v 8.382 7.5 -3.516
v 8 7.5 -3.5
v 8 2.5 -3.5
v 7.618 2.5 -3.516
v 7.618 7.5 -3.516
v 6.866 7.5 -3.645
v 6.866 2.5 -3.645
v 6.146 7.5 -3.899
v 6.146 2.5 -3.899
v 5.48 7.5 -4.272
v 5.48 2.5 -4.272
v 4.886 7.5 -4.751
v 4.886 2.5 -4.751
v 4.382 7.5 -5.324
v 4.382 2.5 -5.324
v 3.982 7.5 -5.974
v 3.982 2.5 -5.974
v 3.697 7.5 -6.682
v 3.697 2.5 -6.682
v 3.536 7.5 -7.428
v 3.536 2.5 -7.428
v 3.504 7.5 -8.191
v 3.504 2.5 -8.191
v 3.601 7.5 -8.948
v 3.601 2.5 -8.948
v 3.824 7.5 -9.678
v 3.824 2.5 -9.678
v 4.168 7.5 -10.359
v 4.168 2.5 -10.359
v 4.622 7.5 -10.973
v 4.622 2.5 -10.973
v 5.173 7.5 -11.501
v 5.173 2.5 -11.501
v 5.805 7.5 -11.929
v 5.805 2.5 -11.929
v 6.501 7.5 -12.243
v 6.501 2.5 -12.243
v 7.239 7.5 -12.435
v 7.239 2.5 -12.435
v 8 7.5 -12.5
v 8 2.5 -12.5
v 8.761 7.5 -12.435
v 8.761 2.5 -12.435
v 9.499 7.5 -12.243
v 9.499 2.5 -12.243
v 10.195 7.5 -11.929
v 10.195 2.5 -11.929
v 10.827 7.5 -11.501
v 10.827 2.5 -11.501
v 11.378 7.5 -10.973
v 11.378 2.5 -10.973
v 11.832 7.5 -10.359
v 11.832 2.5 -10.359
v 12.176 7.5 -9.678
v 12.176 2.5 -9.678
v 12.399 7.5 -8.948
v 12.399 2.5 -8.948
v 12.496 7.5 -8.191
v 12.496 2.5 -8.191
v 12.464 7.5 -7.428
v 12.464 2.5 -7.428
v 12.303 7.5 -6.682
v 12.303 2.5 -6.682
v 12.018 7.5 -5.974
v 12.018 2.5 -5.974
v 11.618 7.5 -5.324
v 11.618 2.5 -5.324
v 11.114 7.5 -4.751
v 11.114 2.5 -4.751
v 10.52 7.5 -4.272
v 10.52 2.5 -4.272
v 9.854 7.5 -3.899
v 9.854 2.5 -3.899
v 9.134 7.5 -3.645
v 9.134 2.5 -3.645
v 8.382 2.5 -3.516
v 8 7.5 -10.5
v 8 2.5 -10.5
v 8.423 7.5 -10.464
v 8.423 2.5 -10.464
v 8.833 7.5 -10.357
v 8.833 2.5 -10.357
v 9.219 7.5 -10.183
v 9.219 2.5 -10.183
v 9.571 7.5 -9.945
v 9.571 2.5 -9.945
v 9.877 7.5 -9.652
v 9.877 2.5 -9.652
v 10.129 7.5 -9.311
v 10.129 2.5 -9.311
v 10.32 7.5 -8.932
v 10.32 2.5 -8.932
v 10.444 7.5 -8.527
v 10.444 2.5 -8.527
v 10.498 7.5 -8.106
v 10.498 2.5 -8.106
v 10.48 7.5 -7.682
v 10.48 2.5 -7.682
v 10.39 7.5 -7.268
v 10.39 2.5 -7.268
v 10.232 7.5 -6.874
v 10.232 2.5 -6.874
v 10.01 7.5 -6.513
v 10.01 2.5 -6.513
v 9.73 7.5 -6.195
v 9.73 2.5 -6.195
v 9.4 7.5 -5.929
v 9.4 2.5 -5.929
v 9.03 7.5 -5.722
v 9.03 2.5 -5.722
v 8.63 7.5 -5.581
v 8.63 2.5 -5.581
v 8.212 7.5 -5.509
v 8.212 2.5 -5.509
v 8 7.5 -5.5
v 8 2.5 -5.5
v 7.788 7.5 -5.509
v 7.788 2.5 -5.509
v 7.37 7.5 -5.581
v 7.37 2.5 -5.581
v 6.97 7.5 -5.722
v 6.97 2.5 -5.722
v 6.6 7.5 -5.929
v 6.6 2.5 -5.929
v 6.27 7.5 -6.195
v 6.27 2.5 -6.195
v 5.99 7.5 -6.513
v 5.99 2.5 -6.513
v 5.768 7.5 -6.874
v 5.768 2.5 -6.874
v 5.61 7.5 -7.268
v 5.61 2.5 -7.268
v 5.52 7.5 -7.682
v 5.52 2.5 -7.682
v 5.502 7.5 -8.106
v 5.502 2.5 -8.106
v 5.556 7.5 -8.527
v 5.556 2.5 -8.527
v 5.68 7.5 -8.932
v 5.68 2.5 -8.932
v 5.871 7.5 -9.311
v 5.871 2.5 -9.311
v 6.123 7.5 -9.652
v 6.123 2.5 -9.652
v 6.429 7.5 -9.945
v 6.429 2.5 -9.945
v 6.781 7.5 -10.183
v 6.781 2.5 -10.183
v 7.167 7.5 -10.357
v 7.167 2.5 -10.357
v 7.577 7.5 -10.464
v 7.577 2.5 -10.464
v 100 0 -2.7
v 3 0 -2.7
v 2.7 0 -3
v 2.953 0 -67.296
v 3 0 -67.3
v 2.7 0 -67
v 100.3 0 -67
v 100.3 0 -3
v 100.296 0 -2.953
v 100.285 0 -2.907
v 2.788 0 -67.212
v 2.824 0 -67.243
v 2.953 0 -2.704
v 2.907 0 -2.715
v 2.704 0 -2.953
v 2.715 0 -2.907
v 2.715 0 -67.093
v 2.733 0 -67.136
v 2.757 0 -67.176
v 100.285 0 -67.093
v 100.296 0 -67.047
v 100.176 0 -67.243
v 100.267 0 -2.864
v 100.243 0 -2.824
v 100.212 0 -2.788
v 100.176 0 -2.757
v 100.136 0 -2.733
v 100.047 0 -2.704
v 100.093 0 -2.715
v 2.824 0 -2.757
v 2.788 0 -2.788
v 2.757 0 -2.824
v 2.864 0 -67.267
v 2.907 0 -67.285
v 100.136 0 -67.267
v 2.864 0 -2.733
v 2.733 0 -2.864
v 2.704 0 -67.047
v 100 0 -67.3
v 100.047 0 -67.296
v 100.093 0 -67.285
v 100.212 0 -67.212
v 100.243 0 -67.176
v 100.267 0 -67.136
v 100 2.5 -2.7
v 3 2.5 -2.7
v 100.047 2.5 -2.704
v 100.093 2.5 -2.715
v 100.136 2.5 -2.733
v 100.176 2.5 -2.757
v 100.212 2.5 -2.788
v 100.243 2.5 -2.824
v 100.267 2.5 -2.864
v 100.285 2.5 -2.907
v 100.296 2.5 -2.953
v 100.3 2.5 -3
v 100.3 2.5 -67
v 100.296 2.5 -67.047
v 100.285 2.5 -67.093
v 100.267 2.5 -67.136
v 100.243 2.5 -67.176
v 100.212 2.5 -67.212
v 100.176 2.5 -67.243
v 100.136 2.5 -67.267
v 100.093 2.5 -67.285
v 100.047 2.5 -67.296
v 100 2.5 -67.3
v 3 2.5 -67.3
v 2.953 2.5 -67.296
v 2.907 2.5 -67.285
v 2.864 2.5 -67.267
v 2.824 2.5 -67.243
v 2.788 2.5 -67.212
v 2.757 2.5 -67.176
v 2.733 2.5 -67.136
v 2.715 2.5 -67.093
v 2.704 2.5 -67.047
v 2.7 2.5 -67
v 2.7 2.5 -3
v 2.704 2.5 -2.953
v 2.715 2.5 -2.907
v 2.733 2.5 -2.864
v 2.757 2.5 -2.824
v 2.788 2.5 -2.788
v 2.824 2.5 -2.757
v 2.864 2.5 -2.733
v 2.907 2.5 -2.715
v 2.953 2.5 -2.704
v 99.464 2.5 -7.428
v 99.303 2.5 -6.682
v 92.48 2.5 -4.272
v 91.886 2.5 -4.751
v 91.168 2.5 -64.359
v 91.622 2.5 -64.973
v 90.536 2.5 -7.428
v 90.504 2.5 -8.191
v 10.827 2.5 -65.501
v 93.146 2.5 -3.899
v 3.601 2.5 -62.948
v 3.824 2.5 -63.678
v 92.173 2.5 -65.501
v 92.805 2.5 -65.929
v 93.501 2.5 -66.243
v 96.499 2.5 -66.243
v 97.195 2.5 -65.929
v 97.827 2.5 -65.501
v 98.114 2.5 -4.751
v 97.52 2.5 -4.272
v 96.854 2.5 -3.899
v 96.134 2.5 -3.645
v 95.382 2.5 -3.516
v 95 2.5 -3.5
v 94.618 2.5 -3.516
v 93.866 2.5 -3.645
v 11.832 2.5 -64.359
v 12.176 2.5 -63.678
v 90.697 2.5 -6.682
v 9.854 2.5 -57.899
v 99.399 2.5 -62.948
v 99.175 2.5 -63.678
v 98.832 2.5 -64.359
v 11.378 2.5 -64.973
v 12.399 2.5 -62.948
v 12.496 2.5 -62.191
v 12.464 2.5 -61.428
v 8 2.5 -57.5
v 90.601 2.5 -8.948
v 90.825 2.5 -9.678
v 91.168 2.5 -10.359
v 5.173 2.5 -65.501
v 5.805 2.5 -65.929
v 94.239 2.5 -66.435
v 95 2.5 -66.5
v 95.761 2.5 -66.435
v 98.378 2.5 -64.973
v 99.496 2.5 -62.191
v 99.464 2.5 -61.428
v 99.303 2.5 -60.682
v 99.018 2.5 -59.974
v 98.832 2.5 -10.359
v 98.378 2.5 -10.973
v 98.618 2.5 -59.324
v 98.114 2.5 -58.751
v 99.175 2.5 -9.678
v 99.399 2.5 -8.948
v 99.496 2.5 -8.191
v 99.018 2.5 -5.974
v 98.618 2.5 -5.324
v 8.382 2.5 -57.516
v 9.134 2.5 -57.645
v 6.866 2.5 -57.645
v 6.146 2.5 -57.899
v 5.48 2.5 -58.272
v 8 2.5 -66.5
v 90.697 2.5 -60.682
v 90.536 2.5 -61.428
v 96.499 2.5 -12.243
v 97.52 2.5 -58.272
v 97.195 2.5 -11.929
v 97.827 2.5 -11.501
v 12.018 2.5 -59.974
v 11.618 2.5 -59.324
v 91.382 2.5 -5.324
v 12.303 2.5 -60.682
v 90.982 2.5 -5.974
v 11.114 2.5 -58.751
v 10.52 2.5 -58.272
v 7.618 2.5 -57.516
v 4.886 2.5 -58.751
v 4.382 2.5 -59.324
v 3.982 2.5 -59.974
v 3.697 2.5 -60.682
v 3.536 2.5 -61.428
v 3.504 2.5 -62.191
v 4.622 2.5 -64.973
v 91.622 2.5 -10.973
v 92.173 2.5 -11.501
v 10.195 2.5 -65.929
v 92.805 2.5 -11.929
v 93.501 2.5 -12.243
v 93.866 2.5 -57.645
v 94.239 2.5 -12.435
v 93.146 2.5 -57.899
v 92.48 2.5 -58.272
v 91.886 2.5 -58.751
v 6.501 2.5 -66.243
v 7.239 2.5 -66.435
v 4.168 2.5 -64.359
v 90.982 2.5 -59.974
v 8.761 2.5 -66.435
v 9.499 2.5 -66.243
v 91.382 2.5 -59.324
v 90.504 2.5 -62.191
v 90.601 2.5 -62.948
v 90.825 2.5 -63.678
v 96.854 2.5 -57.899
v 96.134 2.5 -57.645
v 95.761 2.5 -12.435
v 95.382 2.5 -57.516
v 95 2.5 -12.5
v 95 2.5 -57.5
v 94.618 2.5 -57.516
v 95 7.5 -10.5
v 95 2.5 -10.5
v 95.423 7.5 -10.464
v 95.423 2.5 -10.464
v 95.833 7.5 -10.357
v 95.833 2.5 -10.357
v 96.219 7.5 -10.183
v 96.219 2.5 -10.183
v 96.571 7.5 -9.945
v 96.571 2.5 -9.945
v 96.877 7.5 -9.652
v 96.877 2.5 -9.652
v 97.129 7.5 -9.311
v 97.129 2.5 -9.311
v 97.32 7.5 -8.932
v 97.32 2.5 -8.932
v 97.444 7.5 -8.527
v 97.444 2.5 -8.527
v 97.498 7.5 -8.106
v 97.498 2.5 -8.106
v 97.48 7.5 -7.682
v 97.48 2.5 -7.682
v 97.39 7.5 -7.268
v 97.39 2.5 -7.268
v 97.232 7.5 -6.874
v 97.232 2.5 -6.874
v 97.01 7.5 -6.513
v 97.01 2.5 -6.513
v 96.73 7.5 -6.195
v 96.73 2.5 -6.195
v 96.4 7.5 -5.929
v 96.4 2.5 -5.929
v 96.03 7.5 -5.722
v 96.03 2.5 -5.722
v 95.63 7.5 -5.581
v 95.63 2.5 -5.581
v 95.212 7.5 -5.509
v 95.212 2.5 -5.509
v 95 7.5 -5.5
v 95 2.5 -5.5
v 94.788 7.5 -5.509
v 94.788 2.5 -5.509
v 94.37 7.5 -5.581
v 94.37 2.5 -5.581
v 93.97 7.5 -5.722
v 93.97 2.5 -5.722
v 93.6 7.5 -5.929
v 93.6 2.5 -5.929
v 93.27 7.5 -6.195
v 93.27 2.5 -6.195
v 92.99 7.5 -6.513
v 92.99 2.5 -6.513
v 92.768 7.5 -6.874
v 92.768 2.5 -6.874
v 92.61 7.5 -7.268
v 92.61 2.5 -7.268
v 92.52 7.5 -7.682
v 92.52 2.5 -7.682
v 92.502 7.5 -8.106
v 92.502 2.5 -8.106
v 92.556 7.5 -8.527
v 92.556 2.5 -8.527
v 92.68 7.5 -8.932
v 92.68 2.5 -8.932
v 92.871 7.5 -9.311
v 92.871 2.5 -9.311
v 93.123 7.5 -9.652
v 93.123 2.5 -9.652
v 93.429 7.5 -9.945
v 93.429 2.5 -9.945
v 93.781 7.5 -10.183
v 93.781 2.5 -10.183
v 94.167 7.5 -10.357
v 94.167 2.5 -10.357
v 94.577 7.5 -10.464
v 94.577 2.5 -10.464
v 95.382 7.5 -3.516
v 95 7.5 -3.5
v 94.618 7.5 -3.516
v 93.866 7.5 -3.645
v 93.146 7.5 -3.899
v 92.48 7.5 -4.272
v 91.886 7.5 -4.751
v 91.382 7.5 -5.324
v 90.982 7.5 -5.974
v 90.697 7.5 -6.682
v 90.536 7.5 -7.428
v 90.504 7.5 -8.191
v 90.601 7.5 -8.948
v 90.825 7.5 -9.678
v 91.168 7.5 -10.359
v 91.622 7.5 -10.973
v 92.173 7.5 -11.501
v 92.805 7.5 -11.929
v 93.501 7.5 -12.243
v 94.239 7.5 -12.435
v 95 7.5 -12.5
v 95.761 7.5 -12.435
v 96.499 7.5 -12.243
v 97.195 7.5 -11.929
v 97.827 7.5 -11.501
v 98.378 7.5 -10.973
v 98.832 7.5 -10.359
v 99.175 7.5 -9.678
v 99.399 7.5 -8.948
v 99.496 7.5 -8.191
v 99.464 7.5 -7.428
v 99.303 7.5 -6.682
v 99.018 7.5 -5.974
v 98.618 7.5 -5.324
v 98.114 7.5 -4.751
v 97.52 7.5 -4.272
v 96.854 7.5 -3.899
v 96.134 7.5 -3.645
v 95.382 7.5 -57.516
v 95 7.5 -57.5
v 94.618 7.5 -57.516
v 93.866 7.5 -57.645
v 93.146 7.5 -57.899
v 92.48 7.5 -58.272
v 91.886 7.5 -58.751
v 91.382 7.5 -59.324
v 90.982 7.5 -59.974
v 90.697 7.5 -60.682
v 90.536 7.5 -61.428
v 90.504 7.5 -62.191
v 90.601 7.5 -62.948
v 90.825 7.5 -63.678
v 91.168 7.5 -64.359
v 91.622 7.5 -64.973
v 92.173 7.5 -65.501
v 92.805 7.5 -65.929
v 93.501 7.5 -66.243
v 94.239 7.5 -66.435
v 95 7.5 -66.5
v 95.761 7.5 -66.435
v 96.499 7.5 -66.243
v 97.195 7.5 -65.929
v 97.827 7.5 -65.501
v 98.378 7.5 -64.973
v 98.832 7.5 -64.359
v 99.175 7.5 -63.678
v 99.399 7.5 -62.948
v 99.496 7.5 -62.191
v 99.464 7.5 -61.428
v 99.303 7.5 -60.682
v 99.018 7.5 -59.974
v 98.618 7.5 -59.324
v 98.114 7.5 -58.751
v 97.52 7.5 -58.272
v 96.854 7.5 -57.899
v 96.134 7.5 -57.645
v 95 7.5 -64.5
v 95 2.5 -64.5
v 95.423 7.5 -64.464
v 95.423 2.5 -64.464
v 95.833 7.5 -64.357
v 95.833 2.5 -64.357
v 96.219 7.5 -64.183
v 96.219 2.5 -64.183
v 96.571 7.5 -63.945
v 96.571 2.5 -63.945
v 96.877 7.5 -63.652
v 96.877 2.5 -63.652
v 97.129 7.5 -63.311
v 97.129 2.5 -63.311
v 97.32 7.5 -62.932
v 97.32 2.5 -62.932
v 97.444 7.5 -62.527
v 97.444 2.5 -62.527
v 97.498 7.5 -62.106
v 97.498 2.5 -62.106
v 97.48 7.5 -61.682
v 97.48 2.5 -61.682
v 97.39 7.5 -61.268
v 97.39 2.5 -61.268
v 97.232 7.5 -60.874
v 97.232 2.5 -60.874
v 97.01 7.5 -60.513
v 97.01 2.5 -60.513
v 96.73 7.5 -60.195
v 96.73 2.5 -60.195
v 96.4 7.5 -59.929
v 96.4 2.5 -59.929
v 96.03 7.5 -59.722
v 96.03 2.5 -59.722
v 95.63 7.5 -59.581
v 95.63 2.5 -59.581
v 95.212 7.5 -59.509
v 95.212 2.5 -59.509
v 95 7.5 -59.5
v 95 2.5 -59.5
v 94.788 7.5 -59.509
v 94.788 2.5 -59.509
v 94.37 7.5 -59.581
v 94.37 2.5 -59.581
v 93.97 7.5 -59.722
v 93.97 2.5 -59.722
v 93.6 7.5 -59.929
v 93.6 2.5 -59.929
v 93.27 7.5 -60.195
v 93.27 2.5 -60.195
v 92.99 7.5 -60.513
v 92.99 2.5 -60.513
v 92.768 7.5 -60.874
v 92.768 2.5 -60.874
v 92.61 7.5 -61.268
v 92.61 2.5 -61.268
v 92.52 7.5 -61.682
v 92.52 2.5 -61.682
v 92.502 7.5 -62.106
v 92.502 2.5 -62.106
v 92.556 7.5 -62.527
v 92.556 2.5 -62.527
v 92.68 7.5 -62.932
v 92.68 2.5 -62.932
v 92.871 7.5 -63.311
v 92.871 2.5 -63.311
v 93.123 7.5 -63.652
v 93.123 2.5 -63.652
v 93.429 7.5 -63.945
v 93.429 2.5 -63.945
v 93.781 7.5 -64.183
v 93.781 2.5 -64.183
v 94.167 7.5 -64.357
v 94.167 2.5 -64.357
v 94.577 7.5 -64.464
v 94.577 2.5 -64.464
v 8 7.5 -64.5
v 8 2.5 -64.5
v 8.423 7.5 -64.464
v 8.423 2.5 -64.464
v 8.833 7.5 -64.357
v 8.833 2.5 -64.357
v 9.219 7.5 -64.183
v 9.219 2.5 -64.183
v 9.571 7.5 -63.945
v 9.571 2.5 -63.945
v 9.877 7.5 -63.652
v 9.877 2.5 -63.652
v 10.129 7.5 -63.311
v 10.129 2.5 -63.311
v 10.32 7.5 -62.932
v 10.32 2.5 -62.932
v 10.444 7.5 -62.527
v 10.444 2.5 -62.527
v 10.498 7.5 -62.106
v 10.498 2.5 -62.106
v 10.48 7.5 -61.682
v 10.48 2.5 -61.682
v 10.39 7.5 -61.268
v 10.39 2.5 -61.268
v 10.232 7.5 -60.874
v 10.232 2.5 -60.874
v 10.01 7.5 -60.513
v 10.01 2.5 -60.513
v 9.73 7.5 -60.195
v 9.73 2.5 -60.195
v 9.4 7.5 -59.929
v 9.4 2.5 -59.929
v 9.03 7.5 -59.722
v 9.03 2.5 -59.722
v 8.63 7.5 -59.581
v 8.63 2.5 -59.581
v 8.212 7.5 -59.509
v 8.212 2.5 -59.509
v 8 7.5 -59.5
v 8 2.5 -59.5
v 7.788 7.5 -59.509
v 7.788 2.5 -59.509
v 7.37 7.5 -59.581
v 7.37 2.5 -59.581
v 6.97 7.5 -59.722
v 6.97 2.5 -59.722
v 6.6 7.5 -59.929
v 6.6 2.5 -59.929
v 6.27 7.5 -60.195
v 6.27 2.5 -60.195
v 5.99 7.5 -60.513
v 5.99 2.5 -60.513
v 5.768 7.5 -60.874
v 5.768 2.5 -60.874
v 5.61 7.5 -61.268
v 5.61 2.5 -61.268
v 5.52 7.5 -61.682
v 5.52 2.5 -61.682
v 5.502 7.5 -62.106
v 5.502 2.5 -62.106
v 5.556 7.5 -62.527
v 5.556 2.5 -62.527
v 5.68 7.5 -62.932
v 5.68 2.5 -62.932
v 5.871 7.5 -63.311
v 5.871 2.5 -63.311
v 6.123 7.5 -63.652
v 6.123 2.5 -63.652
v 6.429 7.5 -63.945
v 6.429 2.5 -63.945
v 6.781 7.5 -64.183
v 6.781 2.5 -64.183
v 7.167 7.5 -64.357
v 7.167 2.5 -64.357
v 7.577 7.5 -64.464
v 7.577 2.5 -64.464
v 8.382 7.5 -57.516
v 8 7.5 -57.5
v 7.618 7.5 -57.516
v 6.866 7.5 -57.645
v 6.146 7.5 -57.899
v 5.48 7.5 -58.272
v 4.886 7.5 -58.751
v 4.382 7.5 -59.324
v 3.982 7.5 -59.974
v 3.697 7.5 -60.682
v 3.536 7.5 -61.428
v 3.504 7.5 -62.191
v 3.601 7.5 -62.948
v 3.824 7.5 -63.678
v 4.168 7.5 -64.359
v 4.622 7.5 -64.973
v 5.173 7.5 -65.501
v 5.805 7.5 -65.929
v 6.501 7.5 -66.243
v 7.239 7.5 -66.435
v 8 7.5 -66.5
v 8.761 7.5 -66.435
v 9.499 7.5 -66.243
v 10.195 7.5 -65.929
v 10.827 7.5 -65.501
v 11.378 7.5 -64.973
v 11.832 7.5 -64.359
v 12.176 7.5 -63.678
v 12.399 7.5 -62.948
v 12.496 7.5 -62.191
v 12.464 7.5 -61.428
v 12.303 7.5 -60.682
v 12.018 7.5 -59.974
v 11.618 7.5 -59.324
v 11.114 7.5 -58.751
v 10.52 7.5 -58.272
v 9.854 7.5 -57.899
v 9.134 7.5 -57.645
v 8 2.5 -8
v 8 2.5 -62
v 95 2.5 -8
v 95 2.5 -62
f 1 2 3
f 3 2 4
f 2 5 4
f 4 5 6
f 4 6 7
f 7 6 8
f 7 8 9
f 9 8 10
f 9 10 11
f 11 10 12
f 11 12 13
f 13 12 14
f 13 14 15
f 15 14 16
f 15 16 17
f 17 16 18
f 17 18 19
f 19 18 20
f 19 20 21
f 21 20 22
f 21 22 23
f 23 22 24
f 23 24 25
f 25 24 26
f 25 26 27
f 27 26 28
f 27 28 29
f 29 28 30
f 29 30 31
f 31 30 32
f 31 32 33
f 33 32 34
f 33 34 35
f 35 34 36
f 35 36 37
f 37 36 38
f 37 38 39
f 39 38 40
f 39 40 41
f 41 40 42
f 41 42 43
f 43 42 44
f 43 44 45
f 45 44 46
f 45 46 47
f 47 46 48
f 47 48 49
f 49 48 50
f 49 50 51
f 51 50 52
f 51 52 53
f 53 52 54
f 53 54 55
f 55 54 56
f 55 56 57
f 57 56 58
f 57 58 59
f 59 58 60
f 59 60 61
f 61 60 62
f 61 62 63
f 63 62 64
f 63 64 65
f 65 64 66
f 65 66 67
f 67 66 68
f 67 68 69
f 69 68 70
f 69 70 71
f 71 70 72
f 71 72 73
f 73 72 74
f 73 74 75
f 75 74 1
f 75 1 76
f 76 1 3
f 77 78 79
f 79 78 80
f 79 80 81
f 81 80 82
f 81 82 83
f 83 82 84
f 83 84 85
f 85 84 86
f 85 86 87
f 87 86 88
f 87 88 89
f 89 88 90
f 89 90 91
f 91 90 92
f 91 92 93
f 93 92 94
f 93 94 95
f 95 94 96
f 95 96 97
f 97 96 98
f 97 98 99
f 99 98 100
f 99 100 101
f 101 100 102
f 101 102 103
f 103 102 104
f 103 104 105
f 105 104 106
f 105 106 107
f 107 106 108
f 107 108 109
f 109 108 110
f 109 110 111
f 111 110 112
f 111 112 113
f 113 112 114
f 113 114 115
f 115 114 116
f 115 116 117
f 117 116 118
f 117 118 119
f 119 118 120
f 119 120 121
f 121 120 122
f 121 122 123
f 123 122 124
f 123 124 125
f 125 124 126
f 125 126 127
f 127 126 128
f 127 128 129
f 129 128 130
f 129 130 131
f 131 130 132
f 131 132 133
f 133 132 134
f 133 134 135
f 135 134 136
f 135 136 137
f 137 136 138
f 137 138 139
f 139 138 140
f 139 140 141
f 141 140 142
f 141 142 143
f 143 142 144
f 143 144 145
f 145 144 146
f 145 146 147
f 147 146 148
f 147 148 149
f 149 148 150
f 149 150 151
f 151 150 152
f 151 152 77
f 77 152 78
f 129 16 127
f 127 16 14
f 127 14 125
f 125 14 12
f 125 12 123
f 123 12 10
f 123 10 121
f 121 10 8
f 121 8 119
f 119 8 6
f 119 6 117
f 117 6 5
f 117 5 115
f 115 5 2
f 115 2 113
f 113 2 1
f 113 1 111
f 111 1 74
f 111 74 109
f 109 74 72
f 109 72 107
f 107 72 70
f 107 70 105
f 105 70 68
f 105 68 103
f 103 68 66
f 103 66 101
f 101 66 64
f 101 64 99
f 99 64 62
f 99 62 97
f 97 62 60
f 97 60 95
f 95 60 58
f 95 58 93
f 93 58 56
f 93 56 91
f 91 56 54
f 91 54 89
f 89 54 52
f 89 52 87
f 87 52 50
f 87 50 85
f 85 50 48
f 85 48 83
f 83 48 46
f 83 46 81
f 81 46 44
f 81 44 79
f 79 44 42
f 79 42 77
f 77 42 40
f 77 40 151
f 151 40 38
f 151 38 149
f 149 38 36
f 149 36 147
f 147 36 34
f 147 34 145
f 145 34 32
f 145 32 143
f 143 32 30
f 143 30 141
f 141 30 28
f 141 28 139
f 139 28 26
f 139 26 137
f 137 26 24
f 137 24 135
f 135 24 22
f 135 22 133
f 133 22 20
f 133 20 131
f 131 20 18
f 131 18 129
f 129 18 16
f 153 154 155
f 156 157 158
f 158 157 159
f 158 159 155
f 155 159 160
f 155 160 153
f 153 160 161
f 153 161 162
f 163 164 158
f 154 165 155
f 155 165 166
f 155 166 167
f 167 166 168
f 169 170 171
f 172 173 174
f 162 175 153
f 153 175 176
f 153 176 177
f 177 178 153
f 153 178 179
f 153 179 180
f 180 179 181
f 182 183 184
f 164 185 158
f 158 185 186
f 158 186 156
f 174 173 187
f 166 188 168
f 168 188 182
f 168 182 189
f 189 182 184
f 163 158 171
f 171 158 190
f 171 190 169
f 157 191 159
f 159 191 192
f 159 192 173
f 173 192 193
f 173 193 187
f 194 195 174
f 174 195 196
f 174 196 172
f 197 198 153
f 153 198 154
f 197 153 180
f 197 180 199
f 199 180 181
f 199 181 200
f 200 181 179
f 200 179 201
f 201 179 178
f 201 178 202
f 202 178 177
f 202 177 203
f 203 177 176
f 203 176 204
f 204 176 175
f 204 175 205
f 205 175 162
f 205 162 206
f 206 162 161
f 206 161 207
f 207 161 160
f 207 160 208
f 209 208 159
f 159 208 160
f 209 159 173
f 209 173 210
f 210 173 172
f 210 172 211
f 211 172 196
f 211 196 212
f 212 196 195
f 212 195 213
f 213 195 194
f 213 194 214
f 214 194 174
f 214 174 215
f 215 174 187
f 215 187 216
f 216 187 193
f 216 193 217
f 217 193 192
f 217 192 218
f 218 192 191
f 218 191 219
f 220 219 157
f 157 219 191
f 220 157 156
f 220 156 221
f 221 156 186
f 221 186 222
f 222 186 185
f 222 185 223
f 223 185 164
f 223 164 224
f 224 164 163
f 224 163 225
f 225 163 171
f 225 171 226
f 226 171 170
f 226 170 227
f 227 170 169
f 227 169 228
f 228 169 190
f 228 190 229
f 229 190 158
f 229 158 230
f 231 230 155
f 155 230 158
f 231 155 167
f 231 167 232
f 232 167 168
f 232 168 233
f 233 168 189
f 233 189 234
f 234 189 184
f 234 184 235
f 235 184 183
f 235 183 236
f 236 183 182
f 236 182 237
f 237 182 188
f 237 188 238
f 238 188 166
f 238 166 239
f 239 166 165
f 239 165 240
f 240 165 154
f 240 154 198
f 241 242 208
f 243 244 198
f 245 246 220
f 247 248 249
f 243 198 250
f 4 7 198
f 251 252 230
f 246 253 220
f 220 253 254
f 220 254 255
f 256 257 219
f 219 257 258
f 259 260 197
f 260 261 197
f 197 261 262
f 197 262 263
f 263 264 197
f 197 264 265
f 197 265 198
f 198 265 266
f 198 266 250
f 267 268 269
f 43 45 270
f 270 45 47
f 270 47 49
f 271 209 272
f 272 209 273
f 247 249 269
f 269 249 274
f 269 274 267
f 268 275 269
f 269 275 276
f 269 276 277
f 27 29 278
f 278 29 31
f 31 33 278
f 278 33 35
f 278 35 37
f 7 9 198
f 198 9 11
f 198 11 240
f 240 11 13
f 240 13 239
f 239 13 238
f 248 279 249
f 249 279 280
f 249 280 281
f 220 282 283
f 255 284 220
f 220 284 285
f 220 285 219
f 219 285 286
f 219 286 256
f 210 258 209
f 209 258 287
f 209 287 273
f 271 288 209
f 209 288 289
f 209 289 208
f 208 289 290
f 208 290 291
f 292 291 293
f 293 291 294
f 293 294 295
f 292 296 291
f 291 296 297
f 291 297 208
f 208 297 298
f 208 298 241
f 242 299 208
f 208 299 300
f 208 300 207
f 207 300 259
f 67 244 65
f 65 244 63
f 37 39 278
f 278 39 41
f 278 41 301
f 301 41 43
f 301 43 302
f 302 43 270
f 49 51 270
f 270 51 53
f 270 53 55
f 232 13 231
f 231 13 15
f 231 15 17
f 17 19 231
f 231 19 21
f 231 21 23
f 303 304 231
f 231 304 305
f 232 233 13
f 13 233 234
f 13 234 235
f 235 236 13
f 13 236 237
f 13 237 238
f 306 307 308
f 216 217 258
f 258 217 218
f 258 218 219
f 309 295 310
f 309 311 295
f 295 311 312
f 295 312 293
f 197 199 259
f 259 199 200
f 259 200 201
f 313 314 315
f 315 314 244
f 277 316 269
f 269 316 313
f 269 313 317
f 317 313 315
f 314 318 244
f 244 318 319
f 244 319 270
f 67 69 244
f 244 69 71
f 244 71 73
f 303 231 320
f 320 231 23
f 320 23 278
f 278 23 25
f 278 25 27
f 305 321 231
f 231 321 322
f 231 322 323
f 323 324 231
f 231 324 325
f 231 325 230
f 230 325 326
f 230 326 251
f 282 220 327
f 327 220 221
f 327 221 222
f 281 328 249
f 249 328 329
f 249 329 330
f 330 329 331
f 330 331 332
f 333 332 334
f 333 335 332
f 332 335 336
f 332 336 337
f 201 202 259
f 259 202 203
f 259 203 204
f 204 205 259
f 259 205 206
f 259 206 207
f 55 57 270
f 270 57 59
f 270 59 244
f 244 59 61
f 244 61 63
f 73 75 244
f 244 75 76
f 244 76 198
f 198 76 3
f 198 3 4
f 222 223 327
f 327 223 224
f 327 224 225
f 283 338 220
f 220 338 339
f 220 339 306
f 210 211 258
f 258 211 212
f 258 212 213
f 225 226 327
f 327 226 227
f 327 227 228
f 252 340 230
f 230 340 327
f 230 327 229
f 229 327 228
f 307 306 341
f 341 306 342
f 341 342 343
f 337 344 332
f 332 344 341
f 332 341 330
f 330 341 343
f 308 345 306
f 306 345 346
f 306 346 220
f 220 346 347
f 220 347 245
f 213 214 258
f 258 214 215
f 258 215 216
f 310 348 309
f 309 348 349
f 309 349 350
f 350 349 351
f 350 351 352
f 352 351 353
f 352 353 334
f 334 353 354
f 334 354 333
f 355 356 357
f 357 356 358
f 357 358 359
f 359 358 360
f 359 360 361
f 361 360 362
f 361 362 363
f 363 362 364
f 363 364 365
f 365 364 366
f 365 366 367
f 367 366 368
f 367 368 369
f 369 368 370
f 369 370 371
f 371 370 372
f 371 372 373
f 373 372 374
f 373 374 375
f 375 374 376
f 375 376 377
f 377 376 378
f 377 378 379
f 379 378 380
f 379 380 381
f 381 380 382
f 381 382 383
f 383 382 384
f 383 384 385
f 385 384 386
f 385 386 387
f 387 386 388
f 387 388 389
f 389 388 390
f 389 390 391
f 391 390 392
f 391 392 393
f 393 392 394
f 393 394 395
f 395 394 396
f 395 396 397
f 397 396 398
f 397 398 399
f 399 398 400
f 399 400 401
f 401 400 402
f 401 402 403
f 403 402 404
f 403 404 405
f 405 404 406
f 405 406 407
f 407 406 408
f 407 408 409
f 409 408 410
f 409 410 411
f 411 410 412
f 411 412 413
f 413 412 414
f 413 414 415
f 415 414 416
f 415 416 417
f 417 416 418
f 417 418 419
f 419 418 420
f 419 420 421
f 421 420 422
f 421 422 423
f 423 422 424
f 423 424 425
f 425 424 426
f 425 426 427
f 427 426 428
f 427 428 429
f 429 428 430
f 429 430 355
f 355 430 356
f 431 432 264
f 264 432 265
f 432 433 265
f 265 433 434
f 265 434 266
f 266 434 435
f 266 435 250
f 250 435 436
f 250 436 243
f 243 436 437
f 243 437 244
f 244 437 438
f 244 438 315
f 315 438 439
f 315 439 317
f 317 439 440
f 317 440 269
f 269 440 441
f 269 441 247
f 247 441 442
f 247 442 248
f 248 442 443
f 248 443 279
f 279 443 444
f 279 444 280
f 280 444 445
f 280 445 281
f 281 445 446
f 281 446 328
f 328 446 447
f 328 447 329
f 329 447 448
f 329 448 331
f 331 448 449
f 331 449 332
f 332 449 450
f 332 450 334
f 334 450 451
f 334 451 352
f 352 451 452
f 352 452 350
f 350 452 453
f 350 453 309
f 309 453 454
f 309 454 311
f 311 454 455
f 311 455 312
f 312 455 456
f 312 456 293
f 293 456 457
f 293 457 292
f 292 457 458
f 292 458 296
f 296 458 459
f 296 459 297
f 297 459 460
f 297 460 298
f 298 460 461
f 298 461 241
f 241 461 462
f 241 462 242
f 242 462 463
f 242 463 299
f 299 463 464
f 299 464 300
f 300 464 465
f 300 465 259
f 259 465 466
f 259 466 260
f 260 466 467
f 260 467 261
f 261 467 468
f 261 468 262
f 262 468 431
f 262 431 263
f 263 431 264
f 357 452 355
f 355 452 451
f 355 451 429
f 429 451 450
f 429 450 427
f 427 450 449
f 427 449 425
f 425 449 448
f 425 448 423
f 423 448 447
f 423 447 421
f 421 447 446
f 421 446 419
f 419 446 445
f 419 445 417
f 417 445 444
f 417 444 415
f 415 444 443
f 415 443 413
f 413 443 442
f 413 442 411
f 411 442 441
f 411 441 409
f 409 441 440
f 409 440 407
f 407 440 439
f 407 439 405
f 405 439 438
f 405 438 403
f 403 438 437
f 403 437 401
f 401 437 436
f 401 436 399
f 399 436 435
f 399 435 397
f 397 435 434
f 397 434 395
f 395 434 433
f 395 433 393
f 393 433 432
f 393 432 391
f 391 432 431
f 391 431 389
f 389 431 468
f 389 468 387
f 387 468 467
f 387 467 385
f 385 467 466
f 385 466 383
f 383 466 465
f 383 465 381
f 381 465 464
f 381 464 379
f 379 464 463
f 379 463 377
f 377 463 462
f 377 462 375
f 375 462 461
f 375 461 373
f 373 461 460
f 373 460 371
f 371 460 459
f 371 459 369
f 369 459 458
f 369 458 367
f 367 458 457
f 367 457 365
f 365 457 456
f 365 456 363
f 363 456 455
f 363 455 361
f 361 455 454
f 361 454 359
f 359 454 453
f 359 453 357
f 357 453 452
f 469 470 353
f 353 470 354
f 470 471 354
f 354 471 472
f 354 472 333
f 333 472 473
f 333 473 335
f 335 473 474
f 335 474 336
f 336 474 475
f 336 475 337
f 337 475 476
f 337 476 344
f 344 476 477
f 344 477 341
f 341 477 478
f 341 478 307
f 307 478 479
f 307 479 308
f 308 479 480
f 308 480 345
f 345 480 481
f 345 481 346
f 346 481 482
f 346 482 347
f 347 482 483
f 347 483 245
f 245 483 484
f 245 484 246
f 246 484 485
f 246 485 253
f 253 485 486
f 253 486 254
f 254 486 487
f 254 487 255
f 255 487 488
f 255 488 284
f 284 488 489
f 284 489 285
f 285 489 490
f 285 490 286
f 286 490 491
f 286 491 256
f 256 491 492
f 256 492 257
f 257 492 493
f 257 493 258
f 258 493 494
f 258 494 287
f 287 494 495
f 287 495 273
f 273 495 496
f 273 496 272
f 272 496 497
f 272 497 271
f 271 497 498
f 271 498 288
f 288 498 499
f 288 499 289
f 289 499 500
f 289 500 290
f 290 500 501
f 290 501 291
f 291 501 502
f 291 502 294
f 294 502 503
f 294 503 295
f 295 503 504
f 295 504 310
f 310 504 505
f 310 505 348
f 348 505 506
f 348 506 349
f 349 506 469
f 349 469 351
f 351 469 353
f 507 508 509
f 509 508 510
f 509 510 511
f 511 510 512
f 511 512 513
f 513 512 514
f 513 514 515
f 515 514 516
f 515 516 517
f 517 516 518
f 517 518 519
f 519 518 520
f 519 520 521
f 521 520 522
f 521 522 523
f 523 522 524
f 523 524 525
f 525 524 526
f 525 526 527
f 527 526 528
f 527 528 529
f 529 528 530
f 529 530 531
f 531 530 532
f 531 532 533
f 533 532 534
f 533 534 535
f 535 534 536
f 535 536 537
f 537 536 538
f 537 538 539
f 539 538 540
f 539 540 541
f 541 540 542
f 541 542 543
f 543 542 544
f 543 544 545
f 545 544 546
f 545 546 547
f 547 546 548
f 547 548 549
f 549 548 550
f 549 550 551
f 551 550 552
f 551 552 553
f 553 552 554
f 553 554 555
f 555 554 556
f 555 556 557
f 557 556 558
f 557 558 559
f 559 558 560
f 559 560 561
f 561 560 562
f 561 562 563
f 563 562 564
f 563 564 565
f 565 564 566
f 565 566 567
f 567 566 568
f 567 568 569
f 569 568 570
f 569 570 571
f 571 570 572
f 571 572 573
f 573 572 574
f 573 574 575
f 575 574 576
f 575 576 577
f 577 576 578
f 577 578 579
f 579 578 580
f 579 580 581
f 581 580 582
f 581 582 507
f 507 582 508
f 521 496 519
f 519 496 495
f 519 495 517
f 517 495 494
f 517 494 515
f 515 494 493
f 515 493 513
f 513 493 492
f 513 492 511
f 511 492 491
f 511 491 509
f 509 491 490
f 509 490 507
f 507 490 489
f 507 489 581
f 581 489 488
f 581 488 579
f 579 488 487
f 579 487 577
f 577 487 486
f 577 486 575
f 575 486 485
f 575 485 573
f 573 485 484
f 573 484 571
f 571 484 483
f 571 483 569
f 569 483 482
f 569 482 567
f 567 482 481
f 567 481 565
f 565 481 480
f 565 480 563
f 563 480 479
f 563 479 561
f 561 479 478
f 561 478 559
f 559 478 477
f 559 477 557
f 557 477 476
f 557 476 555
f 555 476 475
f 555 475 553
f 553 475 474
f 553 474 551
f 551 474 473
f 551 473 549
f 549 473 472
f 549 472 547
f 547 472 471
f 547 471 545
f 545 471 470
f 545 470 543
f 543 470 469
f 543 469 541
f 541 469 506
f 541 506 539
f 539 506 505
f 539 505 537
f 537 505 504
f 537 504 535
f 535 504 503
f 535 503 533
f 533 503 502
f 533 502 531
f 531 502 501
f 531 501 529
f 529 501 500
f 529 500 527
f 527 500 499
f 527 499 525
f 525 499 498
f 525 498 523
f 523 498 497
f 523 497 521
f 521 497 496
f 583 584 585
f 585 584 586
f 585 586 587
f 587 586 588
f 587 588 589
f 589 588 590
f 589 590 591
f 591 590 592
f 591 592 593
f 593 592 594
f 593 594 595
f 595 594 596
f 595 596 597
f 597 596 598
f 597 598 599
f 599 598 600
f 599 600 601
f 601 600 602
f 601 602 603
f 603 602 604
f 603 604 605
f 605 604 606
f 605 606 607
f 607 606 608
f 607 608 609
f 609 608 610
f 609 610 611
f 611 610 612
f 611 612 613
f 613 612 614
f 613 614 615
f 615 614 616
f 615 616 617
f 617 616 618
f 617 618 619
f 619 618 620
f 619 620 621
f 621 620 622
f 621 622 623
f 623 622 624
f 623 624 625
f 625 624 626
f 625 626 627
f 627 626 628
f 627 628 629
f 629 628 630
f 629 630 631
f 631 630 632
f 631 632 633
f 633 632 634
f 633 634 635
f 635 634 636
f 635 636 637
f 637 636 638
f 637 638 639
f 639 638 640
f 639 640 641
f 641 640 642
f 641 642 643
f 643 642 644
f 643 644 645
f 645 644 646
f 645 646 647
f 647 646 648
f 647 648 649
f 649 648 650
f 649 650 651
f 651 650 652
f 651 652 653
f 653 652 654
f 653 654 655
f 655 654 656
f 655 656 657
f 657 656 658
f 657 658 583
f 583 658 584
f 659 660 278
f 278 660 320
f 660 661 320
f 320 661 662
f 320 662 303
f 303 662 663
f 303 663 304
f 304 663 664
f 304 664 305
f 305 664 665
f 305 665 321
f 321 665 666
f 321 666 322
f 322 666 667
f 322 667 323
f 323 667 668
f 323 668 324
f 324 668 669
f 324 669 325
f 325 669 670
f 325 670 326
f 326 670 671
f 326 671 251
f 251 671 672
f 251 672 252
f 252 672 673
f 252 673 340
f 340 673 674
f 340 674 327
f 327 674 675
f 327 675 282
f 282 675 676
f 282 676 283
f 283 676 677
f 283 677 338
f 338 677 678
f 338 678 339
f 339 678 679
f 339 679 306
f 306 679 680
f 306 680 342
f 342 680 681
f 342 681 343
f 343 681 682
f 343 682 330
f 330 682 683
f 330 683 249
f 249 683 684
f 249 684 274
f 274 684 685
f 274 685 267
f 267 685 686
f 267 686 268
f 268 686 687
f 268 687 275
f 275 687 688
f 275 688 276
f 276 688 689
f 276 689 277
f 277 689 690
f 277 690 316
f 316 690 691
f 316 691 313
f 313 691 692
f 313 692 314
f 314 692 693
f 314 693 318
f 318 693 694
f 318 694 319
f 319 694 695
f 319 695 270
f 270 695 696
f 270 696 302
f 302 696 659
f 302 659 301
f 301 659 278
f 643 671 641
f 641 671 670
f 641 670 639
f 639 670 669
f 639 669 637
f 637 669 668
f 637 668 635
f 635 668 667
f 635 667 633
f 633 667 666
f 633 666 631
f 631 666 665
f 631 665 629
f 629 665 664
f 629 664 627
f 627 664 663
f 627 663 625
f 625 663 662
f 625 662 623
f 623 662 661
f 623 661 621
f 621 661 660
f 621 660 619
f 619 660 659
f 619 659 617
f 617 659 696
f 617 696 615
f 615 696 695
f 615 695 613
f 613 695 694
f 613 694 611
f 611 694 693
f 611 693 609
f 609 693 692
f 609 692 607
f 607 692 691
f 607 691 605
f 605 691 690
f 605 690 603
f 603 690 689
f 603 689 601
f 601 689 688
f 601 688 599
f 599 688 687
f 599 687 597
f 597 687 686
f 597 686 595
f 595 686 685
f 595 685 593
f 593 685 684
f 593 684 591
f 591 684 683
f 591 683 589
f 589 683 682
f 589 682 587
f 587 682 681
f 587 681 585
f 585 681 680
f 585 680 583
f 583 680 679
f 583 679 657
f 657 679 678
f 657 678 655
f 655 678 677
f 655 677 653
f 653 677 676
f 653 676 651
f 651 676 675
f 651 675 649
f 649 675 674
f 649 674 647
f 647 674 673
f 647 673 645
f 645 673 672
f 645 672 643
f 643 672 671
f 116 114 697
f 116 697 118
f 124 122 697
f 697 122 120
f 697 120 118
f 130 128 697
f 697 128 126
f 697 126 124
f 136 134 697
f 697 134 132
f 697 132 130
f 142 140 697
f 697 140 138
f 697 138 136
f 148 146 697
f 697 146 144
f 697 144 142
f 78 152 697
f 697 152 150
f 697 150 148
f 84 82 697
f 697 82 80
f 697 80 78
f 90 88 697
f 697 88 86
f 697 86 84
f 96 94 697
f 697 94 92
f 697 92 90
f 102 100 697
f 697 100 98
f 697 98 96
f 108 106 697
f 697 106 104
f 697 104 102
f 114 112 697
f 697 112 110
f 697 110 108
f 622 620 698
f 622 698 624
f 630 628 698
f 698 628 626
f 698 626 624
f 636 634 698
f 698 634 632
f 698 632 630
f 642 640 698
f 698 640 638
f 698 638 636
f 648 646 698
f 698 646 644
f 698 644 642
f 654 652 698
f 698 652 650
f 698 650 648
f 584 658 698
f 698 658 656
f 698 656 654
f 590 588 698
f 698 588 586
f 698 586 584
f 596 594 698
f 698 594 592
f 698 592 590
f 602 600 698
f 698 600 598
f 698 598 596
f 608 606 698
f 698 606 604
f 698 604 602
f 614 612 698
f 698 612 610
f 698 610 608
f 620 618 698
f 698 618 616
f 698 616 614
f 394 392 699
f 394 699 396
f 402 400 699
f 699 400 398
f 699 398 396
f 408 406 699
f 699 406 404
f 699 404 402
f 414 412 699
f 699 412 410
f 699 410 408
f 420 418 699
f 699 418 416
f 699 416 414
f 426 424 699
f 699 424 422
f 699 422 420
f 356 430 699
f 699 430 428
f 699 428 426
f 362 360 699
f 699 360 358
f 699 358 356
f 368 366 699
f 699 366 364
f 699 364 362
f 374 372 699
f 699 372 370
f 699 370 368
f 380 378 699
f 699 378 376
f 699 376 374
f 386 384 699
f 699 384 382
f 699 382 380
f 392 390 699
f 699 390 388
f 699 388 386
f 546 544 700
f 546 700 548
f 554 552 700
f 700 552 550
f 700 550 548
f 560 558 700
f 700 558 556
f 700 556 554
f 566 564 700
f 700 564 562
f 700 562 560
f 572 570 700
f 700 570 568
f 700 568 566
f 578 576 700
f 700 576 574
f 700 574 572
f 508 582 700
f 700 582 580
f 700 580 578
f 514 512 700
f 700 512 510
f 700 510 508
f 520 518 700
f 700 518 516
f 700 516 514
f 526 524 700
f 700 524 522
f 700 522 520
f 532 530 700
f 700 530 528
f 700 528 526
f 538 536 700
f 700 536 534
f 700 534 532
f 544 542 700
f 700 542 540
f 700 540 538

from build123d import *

# Parameters (mm, degrees)
SKETCH2_R             = 4.5
SKETCH2_R_2           = 2.5
BOSS_EXTRUDE2_DEPTH   = 7.5
BOSS_EXTRUDE2_2_DEPTH = 7.5
BOSS_EXTRUDE2_3_DEPTH = 7.5
BOSS_EXTRUDE2_4_DEPTH = 7.5
SKETCH2_10_R          = 4.5
SKETCH2_10_R_2        = 2.5
BOSS_EXTRUDE4_DEPTH   = 2.5


with BuildPart() as part:
    # Sketch2 → Boss-Extrude2 (new body)
    with BuildSketch(Plane(origin=(0, 0, 0), x_dir=(1, 0, 0), z_dir=(0, 1, 0))):
        with Locations((95, 8)):
            Circle(SKETCH2_R)
        with Locations((95, 8)):
            Circle(SKETCH2_R_2, mode=Mode.SUBTRACT)
    extrude(amount=BOSS_EXTRUDE2_DEPTH)



with BuildPart() as body_2:
    # Sketch2 → Boss-Extrude2 2 (new body)
    with BuildSketch(Plane(origin=(0, 0, 0), x_dir=(1, 0, 0), z_dir=(0, 1, 0))):
        with Locations((95, 62)):
            Circle(SKETCH2_R)
        with Locations((95, 62)):
            Circle(SKETCH2_R_2, mode=Mode.SUBTRACT)
    extrude(amount=BOSS_EXTRUDE2_2_DEPTH)


with BuildPart() as body_3:
    # Sketch2 → Boss-Extrude2 3 (new body)
    with BuildSketch(Plane(origin=(0, 0, 0), x_dir=(1, 0, 0), z_dir=(0, 1, 0))):
        with Locations((8, 62)):
            Circle(SKETCH2_R)
        with Locations((8, 62)):
            Circle(SKETCH2_R_2, mode=Mode.SUBTRACT)
    extrude(amount=BOSS_EXTRUDE2_3_DEPTH)


with BuildPart() as body_4:
    # Sketch2 → Boss-Extrude2 4 (new body)
    with BuildSketch(Plane(origin=(0, 0, 0), x_dir=(1, 0, 0), z_dir=(0, 1, 0))):
        with Locations((8, 8)):
            Circle(SKETCH2_R)
        with Locations((8, 8)):
            Circle(SKETCH2_R_2, mode=Mode.SUBTRACT)
    extrude(amount=BOSS_EXTRUDE2_4_DEPTH)


with BuildPart() as part_1:
    add(part.part)

    add(body_2.part)  # Boss-Extrude4 merges body 2

    add(body_3.part)  # Boss-Extrude4 merges body 3

    add(body_4.part)  # Boss-Extrude4 merges body 4
    # Sketch2<10> → Boss-Extrude4 (add)
    # profile 1 of 5: a face of its own
    with BuildSketch(Plane(origin=(0, 0, 0), x_dir=(1, 0, 0), z_dir=(0, 1, 0))):
        with BuildLine():
            ThreePointArc((100, 2.7), (100.212132034, 2.787867966), (100.3, 3))
            Line((100.3, 3), (100.3, 67))
            ThreePointArc((100.3, 67), (100.212132034, 67.212132034), (100, 67.3))
            Line((100, 67.3), (3, 67.3))
            ThreePointArc((3, 67.3), (2.787867966, 67.212132034), (2.7, 67))
            Line((2.7, 67), (2.7, 3))
            ThreePointArc((2.7, 3), (2.787867966, 2.787867966), (3, 2.7))
            Line((3, 2.7), (100, 2.7))
        make_face()
        with Locations((8, 8)):
            Circle(SKETCH2_10_R, mode=Mode.SUBTRACT)
        with Locations((95, 8)):
            Circle(SKETCH2_10_R, mode=Mode.SUBTRACT)
        with Locations((8, 62)):
            Circle(SKETCH2_10_R, mode=Mode.SUBTRACT)
        with Locations((95, 62)):
            Circle(SKETCH2_10_R, mode=Mode.SUBTRACT)
    # profile 2 of 5: a face of its own
    with BuildSketch(Plane(origin=(0, 0, 0), x_dir=(1, 0, 0), z_dir=(0, 1, 0))):
        with Locations((95, 8)):
            Circle(SKETCH2_10_R_2)
    # profile 3 of 5: a face of its own
    with BuildSketch(Plane(origin=(0, 0, 0), x_dir=(1, 0, 0), z_dir=(0, 1, 0))):
        with Locations((95, 62)):
            Circle(SKETCH2_10_R_2)
    # profile 4 of 5: a face of its own
    with BuildSketch(Plane(origin=(0, 0, 0), x_dir=(1, 0, 0), z_dir=(0, 1, 0))):
        with Locations((8, 62)):
            Circle(SKETCH2_10_R_2)
    # profile 5 of 5: a face of its own
    with BuildSketch(Plane(origin=(0, 0, 0), x_dir=(1, 0, 0), z_dir=(0, 1, 0))):
        with Locations((8, 8)):
            Circle(SKETCH2_10_R_2)
    extrude(amount=BOSS_EXTRUDE4_DEPTH)


solid = part_1.part
